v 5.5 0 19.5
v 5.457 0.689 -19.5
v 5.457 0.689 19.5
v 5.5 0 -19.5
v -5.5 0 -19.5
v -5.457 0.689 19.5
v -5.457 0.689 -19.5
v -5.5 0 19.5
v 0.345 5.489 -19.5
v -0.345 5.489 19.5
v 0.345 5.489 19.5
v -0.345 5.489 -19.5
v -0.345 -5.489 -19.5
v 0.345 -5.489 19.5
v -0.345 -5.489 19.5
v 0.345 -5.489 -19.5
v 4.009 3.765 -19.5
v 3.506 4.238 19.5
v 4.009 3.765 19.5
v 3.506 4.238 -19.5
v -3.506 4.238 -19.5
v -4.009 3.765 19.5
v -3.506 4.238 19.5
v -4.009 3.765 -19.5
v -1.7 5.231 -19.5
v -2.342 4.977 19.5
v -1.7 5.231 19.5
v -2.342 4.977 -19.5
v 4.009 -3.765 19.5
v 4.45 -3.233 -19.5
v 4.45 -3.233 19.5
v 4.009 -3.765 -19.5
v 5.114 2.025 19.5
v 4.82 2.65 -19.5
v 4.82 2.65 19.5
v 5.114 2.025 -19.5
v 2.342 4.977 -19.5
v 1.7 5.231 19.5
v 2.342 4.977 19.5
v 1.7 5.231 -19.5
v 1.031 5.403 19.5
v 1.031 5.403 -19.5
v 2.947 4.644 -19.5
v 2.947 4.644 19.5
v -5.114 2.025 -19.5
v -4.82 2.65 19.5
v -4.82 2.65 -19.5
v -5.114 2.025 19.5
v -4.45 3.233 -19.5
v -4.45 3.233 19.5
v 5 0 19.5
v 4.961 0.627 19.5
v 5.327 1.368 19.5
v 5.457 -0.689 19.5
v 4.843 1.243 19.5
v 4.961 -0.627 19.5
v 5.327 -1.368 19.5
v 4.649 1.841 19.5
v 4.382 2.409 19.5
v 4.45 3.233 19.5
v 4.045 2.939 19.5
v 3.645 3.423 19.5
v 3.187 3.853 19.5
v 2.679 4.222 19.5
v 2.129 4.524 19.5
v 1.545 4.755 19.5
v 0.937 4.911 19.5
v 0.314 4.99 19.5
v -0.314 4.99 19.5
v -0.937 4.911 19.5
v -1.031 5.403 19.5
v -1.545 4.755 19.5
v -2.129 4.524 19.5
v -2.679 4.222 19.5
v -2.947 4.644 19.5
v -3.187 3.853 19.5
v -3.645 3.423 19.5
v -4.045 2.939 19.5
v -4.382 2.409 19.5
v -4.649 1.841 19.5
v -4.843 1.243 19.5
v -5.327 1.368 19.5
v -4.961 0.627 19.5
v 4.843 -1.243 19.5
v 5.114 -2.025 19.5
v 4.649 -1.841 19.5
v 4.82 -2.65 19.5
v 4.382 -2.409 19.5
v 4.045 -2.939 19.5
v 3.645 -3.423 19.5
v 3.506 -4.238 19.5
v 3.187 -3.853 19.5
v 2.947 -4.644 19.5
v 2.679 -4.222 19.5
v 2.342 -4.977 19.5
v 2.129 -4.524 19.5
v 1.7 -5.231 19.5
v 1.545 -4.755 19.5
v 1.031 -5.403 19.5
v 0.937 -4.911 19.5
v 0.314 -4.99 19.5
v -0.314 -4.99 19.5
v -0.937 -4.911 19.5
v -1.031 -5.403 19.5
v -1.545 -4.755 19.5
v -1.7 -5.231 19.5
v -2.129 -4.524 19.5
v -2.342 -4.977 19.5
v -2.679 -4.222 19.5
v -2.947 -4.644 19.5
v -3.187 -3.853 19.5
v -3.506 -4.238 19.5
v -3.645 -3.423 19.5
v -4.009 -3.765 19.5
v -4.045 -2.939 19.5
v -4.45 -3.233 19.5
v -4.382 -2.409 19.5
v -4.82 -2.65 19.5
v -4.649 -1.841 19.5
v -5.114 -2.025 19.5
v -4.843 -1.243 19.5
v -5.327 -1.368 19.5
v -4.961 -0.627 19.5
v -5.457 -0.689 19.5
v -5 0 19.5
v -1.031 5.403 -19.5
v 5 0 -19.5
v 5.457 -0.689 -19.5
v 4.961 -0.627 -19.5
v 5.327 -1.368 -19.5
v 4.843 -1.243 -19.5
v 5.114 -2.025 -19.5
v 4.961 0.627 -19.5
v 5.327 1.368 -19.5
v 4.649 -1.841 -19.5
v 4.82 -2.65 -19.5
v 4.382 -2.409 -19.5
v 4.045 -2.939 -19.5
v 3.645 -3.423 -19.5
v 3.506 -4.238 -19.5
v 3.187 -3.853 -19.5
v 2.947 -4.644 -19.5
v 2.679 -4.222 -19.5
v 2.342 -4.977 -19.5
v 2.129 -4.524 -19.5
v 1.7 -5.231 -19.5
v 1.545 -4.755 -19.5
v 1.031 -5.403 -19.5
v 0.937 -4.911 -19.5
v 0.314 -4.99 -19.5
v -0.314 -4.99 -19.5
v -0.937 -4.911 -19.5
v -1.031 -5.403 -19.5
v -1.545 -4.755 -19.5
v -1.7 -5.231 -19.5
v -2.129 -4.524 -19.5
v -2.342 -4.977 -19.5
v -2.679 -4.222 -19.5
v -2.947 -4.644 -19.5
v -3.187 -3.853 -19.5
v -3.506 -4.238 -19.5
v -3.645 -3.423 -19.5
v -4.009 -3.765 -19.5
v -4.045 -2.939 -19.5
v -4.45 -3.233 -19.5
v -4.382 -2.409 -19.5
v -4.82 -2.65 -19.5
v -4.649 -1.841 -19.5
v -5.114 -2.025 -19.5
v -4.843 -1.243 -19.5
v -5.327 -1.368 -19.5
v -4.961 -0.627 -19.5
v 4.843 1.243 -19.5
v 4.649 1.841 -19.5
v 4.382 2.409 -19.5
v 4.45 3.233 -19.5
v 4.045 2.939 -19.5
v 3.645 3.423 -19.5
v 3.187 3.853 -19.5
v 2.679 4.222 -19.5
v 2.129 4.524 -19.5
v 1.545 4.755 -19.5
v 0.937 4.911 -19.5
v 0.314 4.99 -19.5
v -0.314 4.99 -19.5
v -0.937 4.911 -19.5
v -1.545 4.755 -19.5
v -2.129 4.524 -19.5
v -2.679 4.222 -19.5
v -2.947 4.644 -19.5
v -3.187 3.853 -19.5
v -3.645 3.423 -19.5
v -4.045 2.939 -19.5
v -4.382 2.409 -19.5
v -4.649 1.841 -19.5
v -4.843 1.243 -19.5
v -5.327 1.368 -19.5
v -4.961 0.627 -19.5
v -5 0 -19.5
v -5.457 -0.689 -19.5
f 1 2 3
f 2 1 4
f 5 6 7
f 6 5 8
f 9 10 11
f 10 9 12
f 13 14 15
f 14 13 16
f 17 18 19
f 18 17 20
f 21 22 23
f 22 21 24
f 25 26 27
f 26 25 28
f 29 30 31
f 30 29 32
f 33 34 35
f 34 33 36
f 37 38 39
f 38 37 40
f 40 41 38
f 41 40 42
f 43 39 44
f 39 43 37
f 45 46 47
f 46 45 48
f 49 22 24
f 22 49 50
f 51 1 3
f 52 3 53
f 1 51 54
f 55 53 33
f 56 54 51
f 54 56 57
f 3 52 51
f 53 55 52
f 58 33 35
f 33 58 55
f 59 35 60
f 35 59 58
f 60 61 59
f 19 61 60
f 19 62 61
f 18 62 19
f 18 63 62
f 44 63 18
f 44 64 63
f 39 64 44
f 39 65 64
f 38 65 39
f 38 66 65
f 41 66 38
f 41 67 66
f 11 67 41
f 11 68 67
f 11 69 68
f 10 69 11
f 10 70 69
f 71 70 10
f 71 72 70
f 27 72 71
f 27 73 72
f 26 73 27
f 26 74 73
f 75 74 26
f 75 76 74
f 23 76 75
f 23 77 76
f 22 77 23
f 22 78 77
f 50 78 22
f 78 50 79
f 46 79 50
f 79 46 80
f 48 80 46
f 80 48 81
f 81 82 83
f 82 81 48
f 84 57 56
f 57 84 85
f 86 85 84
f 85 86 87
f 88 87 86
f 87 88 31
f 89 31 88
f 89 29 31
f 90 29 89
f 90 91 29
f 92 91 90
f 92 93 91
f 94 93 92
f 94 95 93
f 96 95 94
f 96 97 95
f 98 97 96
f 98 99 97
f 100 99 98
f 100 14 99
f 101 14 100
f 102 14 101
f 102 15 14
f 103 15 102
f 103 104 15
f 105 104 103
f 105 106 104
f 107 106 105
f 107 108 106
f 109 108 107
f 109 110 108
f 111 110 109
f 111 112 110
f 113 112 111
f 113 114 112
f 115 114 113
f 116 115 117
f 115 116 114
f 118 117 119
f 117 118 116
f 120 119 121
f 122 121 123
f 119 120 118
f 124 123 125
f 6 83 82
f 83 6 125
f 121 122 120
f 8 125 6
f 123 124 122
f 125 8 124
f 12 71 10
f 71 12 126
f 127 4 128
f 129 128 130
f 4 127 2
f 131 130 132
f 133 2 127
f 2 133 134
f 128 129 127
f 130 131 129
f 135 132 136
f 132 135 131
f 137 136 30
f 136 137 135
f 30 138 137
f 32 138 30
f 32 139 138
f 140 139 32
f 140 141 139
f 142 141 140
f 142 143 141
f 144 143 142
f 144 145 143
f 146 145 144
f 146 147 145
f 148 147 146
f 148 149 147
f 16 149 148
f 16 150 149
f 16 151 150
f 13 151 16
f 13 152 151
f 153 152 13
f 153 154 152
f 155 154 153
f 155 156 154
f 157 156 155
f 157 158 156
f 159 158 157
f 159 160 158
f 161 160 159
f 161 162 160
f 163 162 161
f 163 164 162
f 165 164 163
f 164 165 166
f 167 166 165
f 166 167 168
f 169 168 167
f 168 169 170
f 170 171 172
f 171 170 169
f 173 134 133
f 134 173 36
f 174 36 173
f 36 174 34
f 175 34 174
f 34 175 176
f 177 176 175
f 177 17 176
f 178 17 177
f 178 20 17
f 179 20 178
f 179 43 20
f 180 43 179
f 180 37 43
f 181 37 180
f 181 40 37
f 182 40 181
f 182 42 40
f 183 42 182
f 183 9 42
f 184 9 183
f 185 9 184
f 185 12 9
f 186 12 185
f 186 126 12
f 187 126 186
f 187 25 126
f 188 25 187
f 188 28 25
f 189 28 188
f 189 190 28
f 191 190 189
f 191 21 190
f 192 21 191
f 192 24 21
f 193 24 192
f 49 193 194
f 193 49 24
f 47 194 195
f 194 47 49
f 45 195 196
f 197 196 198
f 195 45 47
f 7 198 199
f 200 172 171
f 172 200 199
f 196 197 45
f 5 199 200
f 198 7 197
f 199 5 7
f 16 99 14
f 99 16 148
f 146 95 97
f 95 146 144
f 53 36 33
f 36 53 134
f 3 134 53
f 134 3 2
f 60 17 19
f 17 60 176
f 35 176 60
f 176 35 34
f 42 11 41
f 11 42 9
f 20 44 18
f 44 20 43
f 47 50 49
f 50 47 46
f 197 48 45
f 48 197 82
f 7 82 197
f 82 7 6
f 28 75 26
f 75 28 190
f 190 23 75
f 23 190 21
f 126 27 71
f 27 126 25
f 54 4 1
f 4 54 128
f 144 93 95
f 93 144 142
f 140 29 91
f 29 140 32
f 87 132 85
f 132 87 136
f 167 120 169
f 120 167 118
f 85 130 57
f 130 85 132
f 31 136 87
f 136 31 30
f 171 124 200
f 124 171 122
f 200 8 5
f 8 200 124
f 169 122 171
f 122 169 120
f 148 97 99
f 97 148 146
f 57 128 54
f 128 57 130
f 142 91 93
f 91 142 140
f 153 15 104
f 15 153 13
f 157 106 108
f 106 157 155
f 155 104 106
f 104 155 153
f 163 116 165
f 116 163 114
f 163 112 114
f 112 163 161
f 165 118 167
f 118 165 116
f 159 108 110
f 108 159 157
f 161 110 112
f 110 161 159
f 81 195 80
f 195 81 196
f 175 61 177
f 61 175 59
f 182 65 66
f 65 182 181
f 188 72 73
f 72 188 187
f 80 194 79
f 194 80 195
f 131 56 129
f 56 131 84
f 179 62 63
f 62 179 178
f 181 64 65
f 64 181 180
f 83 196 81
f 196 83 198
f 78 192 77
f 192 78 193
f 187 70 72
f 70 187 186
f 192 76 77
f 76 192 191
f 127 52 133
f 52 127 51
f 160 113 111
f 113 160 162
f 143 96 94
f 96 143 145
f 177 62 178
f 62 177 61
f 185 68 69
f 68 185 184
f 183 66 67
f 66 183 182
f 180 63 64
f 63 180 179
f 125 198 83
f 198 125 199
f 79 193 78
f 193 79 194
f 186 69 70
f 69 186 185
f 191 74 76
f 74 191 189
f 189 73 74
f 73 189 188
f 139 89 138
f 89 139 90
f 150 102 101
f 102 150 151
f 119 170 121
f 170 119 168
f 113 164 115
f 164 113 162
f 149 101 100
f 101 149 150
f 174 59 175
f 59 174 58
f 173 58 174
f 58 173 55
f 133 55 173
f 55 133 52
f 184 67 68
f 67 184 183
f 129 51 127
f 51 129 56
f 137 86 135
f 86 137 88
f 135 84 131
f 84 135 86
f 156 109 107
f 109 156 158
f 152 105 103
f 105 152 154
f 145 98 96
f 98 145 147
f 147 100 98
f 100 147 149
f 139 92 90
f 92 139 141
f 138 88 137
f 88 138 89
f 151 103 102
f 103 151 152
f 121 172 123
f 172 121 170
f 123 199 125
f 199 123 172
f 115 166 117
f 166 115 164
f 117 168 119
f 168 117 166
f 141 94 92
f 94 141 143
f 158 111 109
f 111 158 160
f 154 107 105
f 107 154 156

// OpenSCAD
$fn = 50;


difference() {
	union() {
		translate(v = [0, 0, -19.5000000000]) {
			cylinder(h = 39, r = 5.5000000000);
		}
	}
	union() {
		translate(v = [0, 0, -100.0000000000]) {
			cylinder(h = 200, r = 5.0000000000);
		}
	}
}
